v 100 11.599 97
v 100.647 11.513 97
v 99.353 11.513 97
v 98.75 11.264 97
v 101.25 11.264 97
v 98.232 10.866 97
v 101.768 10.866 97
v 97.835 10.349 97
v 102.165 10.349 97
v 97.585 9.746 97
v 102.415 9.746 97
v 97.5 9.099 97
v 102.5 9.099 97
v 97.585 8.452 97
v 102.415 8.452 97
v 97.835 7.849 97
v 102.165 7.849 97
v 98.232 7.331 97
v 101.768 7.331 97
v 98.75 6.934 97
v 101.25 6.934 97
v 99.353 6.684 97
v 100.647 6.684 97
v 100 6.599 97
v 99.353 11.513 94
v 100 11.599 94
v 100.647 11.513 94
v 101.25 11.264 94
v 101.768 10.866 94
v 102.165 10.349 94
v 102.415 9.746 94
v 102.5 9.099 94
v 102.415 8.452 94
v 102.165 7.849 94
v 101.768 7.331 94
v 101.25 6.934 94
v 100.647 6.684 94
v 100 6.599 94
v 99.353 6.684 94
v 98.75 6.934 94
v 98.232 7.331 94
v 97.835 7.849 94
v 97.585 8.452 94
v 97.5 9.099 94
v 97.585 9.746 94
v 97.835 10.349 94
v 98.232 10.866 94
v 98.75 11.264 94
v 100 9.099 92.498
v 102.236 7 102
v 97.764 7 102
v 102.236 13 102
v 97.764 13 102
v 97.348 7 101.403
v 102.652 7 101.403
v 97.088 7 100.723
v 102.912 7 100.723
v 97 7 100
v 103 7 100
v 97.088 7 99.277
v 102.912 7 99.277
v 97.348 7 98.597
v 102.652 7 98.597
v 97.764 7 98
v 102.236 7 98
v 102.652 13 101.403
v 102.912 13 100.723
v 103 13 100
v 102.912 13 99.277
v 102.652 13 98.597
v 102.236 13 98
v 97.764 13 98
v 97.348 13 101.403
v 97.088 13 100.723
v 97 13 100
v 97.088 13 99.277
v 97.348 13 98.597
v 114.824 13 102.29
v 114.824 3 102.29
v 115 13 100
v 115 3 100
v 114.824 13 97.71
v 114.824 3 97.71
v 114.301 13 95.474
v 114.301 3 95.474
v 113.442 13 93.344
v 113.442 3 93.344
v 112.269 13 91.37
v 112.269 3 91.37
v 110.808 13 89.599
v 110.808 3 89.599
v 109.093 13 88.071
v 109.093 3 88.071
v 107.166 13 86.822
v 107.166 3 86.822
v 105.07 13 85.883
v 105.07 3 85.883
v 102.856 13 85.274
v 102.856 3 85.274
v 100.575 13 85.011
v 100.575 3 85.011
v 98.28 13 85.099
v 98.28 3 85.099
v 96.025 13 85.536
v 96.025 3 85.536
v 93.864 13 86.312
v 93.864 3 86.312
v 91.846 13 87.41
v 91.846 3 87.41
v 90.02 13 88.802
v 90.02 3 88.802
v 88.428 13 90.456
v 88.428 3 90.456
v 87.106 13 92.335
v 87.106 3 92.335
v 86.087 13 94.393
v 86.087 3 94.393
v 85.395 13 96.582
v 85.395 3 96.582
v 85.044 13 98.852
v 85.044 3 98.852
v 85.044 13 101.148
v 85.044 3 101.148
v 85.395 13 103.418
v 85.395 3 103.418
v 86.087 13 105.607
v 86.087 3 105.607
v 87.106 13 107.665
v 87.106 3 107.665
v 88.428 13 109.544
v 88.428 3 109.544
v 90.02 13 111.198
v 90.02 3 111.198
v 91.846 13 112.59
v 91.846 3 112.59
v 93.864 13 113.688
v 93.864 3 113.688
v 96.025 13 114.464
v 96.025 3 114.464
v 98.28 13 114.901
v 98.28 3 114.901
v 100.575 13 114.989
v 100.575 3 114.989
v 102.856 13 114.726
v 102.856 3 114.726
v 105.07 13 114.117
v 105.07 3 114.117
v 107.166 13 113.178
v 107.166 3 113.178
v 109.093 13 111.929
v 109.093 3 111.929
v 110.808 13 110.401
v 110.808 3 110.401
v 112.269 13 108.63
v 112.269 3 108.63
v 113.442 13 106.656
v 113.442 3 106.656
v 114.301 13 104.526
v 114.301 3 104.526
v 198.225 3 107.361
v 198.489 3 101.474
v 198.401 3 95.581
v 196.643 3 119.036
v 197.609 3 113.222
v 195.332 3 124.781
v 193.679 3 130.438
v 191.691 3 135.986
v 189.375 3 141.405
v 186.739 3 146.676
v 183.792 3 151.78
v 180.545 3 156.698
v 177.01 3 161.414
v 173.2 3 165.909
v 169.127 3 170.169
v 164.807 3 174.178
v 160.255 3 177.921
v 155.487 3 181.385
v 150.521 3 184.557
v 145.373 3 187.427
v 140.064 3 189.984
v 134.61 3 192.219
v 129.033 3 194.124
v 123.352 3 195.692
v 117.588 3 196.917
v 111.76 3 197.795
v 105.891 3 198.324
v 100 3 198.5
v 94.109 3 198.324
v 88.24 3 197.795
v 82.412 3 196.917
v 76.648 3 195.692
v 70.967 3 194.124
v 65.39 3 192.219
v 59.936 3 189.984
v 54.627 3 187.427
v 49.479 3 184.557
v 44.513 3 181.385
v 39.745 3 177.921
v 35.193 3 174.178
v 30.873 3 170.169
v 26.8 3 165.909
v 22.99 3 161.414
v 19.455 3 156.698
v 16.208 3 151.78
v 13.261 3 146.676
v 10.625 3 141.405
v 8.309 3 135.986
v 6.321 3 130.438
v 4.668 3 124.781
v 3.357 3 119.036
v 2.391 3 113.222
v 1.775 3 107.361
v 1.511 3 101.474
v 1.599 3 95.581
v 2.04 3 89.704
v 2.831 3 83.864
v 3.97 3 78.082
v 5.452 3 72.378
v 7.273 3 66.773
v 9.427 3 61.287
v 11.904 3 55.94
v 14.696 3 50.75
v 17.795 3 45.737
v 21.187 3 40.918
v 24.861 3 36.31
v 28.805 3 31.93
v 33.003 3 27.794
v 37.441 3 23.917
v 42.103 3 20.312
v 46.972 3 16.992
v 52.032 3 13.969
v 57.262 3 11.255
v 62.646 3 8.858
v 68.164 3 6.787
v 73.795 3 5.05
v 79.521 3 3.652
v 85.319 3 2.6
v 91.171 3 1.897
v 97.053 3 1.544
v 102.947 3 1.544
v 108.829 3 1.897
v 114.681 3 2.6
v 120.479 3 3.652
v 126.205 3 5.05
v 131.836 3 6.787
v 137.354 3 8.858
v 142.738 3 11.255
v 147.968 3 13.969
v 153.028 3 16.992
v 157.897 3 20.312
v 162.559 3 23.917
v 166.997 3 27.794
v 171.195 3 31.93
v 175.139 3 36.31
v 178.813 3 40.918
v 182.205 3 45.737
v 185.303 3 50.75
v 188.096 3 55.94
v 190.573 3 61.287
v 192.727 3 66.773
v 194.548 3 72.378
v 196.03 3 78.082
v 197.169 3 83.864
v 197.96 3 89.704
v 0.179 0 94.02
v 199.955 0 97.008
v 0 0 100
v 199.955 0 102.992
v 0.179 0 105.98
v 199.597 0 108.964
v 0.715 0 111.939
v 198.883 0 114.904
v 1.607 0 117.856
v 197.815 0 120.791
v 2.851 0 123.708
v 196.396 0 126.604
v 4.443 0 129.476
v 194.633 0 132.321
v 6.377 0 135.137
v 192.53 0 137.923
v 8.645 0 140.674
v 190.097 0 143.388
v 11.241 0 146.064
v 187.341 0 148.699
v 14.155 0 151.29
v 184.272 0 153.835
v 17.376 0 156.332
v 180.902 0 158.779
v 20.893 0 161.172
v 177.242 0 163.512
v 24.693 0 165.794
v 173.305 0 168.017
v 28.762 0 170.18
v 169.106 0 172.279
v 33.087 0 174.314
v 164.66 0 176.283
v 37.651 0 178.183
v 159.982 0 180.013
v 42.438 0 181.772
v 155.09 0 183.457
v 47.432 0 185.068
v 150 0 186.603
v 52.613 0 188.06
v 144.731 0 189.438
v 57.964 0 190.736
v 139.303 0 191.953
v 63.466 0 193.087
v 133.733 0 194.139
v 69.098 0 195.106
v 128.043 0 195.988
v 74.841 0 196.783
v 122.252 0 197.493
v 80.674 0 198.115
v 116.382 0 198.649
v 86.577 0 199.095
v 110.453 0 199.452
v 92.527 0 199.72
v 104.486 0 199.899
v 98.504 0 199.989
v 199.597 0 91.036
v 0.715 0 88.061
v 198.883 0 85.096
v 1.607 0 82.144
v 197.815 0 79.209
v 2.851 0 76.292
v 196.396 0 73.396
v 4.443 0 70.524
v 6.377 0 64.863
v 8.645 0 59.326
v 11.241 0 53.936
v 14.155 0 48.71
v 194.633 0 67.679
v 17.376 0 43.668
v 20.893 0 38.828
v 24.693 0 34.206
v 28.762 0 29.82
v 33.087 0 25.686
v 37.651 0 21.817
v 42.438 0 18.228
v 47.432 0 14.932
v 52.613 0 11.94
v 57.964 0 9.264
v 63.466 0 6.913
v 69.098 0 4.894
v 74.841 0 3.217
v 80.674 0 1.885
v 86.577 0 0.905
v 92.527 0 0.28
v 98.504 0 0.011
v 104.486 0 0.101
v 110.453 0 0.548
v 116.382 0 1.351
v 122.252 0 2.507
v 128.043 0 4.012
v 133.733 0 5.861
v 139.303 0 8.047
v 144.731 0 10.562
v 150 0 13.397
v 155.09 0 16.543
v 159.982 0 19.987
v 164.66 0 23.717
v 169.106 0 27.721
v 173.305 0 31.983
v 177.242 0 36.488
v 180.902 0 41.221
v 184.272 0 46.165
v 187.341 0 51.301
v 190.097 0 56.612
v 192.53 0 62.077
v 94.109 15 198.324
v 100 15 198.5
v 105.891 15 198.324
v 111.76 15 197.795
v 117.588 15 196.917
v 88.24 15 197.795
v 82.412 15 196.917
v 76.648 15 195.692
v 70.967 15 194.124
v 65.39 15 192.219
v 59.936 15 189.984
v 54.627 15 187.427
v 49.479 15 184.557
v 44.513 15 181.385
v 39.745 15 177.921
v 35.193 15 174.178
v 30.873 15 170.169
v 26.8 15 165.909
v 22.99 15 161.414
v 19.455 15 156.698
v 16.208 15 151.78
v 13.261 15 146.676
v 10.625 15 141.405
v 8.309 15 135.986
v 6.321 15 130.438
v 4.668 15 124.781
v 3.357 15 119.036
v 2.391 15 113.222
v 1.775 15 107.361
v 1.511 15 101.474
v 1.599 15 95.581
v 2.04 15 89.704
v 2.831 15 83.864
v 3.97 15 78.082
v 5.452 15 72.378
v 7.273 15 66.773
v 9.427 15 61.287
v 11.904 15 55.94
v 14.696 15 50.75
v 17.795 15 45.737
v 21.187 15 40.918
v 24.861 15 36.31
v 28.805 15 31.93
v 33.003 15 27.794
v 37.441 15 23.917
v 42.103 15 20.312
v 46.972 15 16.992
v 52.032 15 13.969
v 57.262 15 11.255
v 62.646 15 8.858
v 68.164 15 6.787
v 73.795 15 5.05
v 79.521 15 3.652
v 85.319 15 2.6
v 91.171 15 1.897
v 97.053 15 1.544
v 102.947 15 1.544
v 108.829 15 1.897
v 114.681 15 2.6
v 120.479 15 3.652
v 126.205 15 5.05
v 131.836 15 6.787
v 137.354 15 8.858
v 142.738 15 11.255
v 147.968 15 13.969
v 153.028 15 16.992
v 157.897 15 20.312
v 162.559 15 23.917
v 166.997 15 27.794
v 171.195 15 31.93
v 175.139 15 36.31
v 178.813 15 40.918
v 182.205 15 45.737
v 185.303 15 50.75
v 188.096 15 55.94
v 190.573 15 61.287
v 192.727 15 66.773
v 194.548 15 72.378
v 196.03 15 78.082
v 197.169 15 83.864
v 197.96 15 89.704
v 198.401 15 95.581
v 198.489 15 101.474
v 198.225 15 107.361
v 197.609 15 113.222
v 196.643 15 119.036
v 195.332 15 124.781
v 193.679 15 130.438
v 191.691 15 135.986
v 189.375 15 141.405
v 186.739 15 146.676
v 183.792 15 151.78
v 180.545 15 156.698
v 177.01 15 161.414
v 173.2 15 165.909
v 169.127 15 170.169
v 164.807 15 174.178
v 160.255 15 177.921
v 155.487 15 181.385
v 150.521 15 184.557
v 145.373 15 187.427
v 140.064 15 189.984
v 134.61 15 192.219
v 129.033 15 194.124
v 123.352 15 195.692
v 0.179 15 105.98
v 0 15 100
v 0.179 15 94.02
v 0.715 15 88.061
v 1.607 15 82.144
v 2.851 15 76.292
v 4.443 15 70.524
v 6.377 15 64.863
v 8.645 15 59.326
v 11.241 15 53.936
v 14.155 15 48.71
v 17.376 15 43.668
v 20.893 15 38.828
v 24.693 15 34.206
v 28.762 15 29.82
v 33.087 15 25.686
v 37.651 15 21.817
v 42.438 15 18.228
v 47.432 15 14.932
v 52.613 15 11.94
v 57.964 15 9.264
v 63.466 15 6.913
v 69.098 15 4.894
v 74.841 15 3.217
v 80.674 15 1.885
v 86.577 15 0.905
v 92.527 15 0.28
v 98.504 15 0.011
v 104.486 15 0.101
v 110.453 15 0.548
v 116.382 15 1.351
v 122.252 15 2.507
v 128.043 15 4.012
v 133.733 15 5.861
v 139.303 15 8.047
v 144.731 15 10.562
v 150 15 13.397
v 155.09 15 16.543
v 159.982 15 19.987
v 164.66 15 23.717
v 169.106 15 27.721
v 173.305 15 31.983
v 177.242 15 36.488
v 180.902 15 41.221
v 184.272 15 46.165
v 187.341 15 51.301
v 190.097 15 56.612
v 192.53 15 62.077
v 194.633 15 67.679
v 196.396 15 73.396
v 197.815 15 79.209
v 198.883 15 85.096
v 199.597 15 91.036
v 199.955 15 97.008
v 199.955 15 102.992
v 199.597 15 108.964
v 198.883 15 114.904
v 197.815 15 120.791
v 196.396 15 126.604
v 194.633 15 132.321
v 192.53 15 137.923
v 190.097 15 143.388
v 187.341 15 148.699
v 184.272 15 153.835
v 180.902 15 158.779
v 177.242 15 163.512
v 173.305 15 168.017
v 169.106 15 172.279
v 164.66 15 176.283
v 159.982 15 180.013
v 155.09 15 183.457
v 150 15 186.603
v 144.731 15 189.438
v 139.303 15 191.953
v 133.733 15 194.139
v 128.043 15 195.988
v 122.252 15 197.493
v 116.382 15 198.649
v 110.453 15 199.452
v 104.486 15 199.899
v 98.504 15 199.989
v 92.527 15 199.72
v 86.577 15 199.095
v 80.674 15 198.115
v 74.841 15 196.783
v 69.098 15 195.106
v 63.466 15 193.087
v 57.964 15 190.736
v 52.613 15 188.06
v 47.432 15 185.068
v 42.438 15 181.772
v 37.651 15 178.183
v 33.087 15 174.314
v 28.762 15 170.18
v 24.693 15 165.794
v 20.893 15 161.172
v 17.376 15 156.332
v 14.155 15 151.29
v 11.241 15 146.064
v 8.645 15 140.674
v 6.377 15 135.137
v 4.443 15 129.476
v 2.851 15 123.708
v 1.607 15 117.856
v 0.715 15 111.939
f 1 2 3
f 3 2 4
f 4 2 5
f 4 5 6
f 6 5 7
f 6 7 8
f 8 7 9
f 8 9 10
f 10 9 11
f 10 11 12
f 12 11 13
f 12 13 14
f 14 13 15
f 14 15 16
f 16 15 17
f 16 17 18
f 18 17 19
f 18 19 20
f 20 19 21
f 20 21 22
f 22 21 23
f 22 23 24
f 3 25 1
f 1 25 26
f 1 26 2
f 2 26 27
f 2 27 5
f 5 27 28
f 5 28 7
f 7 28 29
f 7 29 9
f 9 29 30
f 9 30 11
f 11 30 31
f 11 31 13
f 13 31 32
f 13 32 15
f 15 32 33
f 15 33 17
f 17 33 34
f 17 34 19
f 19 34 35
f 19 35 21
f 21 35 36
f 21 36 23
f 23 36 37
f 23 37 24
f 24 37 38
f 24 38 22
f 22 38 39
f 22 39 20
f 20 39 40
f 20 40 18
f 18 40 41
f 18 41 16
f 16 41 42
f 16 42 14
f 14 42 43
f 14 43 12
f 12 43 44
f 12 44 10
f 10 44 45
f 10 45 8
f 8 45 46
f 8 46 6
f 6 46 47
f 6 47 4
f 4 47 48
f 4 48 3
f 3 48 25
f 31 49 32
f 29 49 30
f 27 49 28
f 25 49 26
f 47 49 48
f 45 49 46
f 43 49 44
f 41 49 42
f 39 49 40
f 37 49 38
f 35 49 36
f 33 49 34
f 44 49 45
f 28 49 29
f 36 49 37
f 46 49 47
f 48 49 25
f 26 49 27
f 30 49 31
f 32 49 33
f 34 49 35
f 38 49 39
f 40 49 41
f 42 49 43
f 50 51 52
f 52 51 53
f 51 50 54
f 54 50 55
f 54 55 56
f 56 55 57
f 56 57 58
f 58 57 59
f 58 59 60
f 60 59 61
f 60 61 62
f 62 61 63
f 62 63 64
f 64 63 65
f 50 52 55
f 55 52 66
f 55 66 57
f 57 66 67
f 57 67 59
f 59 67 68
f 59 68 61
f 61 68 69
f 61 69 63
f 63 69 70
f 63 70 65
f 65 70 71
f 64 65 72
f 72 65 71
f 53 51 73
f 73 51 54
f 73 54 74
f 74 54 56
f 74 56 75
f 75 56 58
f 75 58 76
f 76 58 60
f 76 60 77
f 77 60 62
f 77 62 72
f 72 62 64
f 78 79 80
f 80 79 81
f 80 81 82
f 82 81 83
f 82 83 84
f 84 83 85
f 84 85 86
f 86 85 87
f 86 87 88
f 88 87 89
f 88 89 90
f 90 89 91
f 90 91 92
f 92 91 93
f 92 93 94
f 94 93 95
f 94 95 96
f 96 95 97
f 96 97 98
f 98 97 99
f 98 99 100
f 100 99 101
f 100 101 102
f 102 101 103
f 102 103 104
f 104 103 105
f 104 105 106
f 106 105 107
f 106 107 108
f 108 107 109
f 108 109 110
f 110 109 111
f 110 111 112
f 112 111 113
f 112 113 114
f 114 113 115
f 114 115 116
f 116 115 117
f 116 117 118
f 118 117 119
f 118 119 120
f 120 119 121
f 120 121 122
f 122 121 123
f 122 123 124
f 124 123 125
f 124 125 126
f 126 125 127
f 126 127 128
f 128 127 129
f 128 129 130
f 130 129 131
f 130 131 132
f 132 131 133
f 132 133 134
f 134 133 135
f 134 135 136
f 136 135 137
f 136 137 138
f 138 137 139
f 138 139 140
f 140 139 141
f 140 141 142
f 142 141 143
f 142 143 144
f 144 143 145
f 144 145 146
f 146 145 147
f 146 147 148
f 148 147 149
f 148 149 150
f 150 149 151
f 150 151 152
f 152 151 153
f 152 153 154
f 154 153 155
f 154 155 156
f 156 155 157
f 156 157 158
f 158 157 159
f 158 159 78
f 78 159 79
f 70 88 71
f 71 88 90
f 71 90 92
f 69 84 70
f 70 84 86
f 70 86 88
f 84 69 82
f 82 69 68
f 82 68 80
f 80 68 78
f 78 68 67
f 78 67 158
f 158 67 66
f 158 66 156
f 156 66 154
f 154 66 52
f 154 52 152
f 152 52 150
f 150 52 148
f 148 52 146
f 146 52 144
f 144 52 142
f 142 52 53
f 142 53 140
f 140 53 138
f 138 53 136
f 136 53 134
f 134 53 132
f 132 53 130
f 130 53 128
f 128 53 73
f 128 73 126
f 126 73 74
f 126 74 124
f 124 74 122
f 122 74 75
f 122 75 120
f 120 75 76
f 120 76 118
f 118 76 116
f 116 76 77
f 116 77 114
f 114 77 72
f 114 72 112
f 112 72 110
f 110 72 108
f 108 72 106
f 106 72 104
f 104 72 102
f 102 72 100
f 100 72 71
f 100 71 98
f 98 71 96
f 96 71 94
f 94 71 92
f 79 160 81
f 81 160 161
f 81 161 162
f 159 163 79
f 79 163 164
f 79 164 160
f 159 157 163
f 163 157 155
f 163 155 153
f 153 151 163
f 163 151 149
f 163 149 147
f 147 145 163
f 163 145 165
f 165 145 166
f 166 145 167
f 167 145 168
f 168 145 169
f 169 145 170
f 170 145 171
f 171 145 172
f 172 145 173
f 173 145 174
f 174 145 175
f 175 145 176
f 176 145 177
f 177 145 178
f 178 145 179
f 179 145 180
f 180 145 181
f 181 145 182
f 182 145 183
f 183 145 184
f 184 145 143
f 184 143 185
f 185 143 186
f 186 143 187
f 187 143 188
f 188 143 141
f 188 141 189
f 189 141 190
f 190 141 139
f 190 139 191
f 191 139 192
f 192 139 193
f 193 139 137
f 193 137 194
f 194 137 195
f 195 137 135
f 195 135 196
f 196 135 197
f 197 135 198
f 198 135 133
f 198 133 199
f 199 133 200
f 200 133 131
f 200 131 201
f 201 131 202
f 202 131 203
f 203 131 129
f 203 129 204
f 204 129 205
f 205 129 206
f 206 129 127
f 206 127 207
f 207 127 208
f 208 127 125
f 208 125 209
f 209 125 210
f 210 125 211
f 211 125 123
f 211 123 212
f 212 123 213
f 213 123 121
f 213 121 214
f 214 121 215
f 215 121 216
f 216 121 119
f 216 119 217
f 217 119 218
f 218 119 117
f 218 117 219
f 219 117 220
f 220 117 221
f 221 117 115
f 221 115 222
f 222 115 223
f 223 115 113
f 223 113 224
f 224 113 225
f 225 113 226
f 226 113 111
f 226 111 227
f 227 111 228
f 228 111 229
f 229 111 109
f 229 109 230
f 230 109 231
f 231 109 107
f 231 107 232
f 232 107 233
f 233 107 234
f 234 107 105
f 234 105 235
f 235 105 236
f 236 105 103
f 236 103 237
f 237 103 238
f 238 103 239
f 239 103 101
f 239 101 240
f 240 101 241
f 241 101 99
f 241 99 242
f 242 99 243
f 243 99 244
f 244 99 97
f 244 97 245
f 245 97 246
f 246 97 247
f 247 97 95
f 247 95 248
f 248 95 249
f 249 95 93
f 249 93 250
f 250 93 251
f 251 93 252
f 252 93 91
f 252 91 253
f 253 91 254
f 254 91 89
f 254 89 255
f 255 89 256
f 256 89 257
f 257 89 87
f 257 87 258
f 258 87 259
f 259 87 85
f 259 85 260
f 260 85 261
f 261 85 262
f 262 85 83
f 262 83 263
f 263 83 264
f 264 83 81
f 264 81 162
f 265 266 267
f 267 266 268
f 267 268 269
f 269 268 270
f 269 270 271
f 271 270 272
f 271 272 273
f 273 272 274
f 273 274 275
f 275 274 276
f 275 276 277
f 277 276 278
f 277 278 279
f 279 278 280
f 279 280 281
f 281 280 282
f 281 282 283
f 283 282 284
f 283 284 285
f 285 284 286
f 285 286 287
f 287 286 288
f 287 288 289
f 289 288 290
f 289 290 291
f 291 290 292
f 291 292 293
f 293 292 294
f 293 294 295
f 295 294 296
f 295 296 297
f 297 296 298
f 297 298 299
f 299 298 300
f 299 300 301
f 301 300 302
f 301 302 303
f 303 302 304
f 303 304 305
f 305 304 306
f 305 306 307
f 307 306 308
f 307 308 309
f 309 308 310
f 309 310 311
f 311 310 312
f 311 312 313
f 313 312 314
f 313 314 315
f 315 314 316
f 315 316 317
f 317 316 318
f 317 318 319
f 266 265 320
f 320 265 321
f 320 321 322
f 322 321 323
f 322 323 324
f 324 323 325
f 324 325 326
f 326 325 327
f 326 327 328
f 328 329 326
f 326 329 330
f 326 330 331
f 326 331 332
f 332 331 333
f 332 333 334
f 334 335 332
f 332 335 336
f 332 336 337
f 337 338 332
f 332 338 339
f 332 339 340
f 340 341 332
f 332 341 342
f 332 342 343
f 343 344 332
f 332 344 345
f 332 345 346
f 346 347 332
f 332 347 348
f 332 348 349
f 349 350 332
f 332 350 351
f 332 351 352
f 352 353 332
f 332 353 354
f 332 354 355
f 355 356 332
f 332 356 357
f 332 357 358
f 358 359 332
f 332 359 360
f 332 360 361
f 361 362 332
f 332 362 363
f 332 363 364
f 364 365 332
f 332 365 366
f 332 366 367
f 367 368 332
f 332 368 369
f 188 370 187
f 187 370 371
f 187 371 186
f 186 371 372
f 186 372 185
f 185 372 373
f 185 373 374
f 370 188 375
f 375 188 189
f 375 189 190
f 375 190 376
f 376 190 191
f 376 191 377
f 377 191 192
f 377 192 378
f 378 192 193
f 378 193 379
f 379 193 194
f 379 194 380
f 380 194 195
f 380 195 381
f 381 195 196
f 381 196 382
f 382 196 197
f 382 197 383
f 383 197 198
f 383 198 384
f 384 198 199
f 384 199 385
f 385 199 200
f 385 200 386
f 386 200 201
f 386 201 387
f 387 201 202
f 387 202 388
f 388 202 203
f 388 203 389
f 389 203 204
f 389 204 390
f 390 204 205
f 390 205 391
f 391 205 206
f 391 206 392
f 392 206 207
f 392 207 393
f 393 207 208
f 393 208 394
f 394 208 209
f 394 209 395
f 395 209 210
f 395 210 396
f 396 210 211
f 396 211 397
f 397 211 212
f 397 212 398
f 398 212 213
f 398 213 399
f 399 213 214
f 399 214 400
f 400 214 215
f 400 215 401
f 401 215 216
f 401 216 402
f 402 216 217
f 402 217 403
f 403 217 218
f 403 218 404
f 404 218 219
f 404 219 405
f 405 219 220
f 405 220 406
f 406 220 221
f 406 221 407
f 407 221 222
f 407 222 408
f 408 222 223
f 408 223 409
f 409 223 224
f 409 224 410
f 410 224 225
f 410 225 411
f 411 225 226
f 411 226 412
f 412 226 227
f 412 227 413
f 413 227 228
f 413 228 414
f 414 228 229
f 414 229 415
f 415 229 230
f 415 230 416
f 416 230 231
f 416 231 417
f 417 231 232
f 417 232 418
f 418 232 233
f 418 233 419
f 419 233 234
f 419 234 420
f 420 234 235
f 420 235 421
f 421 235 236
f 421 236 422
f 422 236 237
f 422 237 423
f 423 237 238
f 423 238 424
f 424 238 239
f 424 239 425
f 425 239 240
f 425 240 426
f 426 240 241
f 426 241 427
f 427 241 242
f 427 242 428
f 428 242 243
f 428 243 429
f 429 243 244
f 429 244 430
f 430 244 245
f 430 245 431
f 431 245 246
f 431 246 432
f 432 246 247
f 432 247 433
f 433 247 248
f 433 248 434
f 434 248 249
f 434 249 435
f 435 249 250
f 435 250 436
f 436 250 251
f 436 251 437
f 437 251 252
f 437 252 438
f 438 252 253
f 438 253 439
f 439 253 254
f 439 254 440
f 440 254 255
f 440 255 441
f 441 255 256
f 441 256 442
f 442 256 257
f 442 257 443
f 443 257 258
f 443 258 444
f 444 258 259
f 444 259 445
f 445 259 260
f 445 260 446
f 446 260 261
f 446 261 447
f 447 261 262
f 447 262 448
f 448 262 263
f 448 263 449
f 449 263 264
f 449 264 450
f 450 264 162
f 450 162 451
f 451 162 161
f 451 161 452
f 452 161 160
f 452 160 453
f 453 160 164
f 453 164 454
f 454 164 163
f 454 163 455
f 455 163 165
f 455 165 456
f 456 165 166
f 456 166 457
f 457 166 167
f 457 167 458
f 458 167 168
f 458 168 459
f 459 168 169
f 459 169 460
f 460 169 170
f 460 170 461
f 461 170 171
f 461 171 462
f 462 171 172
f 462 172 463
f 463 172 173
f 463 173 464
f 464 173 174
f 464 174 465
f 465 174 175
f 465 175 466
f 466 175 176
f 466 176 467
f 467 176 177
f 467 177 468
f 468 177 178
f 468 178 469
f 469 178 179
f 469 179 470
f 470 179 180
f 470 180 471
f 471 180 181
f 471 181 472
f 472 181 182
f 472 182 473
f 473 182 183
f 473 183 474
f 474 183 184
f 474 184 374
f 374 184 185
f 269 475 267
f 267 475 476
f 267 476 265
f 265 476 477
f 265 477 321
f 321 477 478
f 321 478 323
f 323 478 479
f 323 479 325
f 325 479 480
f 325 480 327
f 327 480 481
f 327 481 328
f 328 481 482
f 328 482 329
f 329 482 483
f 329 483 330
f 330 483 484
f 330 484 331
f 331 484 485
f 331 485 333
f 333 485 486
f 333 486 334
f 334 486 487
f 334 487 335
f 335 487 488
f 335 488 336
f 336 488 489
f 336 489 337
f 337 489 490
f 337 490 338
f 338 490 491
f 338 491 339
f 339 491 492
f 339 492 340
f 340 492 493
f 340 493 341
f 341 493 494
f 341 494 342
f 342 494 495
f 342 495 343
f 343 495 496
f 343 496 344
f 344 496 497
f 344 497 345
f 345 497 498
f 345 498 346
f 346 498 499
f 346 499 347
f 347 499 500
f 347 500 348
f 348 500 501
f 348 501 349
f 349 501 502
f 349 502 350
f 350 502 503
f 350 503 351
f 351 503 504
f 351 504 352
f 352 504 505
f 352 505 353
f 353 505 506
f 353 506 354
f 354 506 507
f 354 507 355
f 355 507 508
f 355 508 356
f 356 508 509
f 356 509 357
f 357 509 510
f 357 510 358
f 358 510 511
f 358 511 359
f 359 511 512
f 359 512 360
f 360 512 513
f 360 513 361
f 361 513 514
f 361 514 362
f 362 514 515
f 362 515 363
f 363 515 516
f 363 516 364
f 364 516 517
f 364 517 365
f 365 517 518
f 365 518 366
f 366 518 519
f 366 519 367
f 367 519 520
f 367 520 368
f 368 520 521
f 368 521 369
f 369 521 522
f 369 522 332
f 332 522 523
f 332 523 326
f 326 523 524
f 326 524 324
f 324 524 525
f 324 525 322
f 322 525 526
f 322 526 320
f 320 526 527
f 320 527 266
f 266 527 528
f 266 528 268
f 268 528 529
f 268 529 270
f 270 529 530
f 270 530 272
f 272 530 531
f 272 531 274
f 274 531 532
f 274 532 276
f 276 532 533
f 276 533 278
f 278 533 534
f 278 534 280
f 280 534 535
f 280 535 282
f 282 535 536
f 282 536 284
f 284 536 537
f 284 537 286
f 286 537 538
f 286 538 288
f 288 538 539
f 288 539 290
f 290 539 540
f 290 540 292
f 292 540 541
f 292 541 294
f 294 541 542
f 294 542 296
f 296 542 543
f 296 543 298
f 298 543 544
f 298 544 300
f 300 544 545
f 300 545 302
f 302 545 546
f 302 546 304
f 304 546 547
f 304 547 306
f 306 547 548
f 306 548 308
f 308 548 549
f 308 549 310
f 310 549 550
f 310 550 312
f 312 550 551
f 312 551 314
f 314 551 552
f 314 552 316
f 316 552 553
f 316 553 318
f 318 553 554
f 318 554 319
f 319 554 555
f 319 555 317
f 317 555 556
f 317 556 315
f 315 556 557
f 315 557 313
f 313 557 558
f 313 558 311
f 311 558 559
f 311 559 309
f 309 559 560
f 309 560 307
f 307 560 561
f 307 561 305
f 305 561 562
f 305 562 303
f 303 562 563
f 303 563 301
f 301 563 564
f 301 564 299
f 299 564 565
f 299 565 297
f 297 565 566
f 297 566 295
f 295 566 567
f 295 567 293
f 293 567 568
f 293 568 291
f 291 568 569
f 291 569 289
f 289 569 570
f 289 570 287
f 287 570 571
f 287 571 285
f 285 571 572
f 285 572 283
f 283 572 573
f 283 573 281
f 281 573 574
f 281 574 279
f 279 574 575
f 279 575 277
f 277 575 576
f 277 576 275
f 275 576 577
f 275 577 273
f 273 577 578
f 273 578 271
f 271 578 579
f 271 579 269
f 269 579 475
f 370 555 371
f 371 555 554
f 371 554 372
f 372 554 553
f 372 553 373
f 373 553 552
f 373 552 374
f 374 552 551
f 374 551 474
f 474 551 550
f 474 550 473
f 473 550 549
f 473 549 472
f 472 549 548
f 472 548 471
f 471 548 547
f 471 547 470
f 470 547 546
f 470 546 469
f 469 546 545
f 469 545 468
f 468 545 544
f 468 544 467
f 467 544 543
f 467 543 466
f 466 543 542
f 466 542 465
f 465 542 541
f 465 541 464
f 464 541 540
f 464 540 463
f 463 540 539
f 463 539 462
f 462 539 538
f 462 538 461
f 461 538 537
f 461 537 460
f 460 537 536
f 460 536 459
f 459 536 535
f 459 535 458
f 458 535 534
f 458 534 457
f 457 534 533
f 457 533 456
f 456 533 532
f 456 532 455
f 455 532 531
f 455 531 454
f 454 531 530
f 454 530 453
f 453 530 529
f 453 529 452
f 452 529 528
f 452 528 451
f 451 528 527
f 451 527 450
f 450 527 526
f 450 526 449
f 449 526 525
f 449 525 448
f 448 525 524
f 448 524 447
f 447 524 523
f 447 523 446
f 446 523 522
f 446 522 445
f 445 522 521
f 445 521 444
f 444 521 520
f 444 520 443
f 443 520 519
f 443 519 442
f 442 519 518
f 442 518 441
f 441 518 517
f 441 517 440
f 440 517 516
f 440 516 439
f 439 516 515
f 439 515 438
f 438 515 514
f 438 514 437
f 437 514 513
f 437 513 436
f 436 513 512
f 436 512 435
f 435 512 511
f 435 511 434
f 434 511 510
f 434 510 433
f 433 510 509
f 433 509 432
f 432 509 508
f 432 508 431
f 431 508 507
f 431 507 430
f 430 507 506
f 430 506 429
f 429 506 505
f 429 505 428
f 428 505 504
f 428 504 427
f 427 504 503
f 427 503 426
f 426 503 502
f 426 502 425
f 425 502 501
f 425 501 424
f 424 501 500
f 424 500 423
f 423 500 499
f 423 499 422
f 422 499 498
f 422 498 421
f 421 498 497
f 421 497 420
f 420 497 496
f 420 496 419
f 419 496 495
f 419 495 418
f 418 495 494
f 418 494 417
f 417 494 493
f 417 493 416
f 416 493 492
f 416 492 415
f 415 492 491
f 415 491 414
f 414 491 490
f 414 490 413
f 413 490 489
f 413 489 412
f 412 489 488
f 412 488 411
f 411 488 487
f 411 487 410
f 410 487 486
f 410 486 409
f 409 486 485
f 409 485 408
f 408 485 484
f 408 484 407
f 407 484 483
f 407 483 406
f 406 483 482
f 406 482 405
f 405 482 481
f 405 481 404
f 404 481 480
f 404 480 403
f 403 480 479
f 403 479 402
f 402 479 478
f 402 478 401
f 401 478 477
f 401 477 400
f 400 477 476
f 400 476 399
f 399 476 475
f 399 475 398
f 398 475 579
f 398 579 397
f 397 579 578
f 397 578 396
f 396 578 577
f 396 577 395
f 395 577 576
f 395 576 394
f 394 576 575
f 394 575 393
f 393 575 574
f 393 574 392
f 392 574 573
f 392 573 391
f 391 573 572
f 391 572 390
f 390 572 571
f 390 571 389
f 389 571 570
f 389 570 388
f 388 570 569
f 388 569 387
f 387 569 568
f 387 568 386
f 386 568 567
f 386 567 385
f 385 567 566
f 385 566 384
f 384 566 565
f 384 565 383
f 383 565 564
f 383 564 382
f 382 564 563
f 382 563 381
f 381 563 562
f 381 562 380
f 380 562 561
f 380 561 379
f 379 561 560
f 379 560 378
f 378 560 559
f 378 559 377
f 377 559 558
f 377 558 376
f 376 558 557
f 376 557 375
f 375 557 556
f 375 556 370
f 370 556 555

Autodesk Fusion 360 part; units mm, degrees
sketch "Boceto1" plane through (0, 0, 0) normal (0, 1, 0) x (1, 0, 0)
  circle A0 centre (100, -100) radius 100
extrude "Extruir1" add sketch "Boceto1" along normal blind 15
hole "Agujero1" at (100, 0, 100) direction (0, 1, 0) diameter 197 depth 197 tip angle 118
sketch "Boceto2" plane through (0, 0, 0) normal (0, 1, 0) x (1, 0, 0)
  circle A0 centre (100, -100) radius 100
  dimension "d6" = 200
extrude "Extruir2" cut sketch "Boceto1" along normal blind 0.003
extrude "Extruir3" add sketch "Boceto2" along normal blind 3
sketch "Boceto4" plane through (0, 3, 0) normal (0, 1, 0) x (-1, 0, 0)
  circle A0 centre (-100, 100) radius 98.5
  circle A1 centre (-100, 100) radius 15
  dimension "d11" = 30
extrude "Extruir4" add sketch "Boceto4" along normal blind 10 contours A1
shell "Vaciado1" thickness 12 removed faces 1 at (101.1126, 13, 95.1254)
extrude "Extruir5" cut 1 faces at (98.8219, 12, 99.3198) along direction (0, -1, 0) blind 5
hole "Agujero2" at (100, 9.0986, 97) direction (0, 0, -1) diameter 5 depth 3 tip angle 118
sketch "Boceto5" plane through (0, 7, 0) normal (0, 1, 0) x (-1, 0, 0)
  circle A0 centre (-100, 100) radius 3
  line L0 (-97.7639, 98) -> (-102.2361, 98)
extrude "Extruir6" add sketch "Boceto5" along normal blind 6 contours A0 L0 picked at (-100.6449, 97.9024)
sketch "Boceto6" plane through (0, 7, 0) normal (0, 1, 0) x (-1, 0, 0)
  line L0 (-102.2361, 98) -> (-97.7639, 98)
  arc A0 (-97.7639, 98) -> (-102.2361, 98) centre (-100, 100) ccw
  line L1 (-102.2361, 102) -> (-97.7639, 102)
extrude "Extruir7" add sketch "Boceto6" along normal blind 6 contours A0 L1
